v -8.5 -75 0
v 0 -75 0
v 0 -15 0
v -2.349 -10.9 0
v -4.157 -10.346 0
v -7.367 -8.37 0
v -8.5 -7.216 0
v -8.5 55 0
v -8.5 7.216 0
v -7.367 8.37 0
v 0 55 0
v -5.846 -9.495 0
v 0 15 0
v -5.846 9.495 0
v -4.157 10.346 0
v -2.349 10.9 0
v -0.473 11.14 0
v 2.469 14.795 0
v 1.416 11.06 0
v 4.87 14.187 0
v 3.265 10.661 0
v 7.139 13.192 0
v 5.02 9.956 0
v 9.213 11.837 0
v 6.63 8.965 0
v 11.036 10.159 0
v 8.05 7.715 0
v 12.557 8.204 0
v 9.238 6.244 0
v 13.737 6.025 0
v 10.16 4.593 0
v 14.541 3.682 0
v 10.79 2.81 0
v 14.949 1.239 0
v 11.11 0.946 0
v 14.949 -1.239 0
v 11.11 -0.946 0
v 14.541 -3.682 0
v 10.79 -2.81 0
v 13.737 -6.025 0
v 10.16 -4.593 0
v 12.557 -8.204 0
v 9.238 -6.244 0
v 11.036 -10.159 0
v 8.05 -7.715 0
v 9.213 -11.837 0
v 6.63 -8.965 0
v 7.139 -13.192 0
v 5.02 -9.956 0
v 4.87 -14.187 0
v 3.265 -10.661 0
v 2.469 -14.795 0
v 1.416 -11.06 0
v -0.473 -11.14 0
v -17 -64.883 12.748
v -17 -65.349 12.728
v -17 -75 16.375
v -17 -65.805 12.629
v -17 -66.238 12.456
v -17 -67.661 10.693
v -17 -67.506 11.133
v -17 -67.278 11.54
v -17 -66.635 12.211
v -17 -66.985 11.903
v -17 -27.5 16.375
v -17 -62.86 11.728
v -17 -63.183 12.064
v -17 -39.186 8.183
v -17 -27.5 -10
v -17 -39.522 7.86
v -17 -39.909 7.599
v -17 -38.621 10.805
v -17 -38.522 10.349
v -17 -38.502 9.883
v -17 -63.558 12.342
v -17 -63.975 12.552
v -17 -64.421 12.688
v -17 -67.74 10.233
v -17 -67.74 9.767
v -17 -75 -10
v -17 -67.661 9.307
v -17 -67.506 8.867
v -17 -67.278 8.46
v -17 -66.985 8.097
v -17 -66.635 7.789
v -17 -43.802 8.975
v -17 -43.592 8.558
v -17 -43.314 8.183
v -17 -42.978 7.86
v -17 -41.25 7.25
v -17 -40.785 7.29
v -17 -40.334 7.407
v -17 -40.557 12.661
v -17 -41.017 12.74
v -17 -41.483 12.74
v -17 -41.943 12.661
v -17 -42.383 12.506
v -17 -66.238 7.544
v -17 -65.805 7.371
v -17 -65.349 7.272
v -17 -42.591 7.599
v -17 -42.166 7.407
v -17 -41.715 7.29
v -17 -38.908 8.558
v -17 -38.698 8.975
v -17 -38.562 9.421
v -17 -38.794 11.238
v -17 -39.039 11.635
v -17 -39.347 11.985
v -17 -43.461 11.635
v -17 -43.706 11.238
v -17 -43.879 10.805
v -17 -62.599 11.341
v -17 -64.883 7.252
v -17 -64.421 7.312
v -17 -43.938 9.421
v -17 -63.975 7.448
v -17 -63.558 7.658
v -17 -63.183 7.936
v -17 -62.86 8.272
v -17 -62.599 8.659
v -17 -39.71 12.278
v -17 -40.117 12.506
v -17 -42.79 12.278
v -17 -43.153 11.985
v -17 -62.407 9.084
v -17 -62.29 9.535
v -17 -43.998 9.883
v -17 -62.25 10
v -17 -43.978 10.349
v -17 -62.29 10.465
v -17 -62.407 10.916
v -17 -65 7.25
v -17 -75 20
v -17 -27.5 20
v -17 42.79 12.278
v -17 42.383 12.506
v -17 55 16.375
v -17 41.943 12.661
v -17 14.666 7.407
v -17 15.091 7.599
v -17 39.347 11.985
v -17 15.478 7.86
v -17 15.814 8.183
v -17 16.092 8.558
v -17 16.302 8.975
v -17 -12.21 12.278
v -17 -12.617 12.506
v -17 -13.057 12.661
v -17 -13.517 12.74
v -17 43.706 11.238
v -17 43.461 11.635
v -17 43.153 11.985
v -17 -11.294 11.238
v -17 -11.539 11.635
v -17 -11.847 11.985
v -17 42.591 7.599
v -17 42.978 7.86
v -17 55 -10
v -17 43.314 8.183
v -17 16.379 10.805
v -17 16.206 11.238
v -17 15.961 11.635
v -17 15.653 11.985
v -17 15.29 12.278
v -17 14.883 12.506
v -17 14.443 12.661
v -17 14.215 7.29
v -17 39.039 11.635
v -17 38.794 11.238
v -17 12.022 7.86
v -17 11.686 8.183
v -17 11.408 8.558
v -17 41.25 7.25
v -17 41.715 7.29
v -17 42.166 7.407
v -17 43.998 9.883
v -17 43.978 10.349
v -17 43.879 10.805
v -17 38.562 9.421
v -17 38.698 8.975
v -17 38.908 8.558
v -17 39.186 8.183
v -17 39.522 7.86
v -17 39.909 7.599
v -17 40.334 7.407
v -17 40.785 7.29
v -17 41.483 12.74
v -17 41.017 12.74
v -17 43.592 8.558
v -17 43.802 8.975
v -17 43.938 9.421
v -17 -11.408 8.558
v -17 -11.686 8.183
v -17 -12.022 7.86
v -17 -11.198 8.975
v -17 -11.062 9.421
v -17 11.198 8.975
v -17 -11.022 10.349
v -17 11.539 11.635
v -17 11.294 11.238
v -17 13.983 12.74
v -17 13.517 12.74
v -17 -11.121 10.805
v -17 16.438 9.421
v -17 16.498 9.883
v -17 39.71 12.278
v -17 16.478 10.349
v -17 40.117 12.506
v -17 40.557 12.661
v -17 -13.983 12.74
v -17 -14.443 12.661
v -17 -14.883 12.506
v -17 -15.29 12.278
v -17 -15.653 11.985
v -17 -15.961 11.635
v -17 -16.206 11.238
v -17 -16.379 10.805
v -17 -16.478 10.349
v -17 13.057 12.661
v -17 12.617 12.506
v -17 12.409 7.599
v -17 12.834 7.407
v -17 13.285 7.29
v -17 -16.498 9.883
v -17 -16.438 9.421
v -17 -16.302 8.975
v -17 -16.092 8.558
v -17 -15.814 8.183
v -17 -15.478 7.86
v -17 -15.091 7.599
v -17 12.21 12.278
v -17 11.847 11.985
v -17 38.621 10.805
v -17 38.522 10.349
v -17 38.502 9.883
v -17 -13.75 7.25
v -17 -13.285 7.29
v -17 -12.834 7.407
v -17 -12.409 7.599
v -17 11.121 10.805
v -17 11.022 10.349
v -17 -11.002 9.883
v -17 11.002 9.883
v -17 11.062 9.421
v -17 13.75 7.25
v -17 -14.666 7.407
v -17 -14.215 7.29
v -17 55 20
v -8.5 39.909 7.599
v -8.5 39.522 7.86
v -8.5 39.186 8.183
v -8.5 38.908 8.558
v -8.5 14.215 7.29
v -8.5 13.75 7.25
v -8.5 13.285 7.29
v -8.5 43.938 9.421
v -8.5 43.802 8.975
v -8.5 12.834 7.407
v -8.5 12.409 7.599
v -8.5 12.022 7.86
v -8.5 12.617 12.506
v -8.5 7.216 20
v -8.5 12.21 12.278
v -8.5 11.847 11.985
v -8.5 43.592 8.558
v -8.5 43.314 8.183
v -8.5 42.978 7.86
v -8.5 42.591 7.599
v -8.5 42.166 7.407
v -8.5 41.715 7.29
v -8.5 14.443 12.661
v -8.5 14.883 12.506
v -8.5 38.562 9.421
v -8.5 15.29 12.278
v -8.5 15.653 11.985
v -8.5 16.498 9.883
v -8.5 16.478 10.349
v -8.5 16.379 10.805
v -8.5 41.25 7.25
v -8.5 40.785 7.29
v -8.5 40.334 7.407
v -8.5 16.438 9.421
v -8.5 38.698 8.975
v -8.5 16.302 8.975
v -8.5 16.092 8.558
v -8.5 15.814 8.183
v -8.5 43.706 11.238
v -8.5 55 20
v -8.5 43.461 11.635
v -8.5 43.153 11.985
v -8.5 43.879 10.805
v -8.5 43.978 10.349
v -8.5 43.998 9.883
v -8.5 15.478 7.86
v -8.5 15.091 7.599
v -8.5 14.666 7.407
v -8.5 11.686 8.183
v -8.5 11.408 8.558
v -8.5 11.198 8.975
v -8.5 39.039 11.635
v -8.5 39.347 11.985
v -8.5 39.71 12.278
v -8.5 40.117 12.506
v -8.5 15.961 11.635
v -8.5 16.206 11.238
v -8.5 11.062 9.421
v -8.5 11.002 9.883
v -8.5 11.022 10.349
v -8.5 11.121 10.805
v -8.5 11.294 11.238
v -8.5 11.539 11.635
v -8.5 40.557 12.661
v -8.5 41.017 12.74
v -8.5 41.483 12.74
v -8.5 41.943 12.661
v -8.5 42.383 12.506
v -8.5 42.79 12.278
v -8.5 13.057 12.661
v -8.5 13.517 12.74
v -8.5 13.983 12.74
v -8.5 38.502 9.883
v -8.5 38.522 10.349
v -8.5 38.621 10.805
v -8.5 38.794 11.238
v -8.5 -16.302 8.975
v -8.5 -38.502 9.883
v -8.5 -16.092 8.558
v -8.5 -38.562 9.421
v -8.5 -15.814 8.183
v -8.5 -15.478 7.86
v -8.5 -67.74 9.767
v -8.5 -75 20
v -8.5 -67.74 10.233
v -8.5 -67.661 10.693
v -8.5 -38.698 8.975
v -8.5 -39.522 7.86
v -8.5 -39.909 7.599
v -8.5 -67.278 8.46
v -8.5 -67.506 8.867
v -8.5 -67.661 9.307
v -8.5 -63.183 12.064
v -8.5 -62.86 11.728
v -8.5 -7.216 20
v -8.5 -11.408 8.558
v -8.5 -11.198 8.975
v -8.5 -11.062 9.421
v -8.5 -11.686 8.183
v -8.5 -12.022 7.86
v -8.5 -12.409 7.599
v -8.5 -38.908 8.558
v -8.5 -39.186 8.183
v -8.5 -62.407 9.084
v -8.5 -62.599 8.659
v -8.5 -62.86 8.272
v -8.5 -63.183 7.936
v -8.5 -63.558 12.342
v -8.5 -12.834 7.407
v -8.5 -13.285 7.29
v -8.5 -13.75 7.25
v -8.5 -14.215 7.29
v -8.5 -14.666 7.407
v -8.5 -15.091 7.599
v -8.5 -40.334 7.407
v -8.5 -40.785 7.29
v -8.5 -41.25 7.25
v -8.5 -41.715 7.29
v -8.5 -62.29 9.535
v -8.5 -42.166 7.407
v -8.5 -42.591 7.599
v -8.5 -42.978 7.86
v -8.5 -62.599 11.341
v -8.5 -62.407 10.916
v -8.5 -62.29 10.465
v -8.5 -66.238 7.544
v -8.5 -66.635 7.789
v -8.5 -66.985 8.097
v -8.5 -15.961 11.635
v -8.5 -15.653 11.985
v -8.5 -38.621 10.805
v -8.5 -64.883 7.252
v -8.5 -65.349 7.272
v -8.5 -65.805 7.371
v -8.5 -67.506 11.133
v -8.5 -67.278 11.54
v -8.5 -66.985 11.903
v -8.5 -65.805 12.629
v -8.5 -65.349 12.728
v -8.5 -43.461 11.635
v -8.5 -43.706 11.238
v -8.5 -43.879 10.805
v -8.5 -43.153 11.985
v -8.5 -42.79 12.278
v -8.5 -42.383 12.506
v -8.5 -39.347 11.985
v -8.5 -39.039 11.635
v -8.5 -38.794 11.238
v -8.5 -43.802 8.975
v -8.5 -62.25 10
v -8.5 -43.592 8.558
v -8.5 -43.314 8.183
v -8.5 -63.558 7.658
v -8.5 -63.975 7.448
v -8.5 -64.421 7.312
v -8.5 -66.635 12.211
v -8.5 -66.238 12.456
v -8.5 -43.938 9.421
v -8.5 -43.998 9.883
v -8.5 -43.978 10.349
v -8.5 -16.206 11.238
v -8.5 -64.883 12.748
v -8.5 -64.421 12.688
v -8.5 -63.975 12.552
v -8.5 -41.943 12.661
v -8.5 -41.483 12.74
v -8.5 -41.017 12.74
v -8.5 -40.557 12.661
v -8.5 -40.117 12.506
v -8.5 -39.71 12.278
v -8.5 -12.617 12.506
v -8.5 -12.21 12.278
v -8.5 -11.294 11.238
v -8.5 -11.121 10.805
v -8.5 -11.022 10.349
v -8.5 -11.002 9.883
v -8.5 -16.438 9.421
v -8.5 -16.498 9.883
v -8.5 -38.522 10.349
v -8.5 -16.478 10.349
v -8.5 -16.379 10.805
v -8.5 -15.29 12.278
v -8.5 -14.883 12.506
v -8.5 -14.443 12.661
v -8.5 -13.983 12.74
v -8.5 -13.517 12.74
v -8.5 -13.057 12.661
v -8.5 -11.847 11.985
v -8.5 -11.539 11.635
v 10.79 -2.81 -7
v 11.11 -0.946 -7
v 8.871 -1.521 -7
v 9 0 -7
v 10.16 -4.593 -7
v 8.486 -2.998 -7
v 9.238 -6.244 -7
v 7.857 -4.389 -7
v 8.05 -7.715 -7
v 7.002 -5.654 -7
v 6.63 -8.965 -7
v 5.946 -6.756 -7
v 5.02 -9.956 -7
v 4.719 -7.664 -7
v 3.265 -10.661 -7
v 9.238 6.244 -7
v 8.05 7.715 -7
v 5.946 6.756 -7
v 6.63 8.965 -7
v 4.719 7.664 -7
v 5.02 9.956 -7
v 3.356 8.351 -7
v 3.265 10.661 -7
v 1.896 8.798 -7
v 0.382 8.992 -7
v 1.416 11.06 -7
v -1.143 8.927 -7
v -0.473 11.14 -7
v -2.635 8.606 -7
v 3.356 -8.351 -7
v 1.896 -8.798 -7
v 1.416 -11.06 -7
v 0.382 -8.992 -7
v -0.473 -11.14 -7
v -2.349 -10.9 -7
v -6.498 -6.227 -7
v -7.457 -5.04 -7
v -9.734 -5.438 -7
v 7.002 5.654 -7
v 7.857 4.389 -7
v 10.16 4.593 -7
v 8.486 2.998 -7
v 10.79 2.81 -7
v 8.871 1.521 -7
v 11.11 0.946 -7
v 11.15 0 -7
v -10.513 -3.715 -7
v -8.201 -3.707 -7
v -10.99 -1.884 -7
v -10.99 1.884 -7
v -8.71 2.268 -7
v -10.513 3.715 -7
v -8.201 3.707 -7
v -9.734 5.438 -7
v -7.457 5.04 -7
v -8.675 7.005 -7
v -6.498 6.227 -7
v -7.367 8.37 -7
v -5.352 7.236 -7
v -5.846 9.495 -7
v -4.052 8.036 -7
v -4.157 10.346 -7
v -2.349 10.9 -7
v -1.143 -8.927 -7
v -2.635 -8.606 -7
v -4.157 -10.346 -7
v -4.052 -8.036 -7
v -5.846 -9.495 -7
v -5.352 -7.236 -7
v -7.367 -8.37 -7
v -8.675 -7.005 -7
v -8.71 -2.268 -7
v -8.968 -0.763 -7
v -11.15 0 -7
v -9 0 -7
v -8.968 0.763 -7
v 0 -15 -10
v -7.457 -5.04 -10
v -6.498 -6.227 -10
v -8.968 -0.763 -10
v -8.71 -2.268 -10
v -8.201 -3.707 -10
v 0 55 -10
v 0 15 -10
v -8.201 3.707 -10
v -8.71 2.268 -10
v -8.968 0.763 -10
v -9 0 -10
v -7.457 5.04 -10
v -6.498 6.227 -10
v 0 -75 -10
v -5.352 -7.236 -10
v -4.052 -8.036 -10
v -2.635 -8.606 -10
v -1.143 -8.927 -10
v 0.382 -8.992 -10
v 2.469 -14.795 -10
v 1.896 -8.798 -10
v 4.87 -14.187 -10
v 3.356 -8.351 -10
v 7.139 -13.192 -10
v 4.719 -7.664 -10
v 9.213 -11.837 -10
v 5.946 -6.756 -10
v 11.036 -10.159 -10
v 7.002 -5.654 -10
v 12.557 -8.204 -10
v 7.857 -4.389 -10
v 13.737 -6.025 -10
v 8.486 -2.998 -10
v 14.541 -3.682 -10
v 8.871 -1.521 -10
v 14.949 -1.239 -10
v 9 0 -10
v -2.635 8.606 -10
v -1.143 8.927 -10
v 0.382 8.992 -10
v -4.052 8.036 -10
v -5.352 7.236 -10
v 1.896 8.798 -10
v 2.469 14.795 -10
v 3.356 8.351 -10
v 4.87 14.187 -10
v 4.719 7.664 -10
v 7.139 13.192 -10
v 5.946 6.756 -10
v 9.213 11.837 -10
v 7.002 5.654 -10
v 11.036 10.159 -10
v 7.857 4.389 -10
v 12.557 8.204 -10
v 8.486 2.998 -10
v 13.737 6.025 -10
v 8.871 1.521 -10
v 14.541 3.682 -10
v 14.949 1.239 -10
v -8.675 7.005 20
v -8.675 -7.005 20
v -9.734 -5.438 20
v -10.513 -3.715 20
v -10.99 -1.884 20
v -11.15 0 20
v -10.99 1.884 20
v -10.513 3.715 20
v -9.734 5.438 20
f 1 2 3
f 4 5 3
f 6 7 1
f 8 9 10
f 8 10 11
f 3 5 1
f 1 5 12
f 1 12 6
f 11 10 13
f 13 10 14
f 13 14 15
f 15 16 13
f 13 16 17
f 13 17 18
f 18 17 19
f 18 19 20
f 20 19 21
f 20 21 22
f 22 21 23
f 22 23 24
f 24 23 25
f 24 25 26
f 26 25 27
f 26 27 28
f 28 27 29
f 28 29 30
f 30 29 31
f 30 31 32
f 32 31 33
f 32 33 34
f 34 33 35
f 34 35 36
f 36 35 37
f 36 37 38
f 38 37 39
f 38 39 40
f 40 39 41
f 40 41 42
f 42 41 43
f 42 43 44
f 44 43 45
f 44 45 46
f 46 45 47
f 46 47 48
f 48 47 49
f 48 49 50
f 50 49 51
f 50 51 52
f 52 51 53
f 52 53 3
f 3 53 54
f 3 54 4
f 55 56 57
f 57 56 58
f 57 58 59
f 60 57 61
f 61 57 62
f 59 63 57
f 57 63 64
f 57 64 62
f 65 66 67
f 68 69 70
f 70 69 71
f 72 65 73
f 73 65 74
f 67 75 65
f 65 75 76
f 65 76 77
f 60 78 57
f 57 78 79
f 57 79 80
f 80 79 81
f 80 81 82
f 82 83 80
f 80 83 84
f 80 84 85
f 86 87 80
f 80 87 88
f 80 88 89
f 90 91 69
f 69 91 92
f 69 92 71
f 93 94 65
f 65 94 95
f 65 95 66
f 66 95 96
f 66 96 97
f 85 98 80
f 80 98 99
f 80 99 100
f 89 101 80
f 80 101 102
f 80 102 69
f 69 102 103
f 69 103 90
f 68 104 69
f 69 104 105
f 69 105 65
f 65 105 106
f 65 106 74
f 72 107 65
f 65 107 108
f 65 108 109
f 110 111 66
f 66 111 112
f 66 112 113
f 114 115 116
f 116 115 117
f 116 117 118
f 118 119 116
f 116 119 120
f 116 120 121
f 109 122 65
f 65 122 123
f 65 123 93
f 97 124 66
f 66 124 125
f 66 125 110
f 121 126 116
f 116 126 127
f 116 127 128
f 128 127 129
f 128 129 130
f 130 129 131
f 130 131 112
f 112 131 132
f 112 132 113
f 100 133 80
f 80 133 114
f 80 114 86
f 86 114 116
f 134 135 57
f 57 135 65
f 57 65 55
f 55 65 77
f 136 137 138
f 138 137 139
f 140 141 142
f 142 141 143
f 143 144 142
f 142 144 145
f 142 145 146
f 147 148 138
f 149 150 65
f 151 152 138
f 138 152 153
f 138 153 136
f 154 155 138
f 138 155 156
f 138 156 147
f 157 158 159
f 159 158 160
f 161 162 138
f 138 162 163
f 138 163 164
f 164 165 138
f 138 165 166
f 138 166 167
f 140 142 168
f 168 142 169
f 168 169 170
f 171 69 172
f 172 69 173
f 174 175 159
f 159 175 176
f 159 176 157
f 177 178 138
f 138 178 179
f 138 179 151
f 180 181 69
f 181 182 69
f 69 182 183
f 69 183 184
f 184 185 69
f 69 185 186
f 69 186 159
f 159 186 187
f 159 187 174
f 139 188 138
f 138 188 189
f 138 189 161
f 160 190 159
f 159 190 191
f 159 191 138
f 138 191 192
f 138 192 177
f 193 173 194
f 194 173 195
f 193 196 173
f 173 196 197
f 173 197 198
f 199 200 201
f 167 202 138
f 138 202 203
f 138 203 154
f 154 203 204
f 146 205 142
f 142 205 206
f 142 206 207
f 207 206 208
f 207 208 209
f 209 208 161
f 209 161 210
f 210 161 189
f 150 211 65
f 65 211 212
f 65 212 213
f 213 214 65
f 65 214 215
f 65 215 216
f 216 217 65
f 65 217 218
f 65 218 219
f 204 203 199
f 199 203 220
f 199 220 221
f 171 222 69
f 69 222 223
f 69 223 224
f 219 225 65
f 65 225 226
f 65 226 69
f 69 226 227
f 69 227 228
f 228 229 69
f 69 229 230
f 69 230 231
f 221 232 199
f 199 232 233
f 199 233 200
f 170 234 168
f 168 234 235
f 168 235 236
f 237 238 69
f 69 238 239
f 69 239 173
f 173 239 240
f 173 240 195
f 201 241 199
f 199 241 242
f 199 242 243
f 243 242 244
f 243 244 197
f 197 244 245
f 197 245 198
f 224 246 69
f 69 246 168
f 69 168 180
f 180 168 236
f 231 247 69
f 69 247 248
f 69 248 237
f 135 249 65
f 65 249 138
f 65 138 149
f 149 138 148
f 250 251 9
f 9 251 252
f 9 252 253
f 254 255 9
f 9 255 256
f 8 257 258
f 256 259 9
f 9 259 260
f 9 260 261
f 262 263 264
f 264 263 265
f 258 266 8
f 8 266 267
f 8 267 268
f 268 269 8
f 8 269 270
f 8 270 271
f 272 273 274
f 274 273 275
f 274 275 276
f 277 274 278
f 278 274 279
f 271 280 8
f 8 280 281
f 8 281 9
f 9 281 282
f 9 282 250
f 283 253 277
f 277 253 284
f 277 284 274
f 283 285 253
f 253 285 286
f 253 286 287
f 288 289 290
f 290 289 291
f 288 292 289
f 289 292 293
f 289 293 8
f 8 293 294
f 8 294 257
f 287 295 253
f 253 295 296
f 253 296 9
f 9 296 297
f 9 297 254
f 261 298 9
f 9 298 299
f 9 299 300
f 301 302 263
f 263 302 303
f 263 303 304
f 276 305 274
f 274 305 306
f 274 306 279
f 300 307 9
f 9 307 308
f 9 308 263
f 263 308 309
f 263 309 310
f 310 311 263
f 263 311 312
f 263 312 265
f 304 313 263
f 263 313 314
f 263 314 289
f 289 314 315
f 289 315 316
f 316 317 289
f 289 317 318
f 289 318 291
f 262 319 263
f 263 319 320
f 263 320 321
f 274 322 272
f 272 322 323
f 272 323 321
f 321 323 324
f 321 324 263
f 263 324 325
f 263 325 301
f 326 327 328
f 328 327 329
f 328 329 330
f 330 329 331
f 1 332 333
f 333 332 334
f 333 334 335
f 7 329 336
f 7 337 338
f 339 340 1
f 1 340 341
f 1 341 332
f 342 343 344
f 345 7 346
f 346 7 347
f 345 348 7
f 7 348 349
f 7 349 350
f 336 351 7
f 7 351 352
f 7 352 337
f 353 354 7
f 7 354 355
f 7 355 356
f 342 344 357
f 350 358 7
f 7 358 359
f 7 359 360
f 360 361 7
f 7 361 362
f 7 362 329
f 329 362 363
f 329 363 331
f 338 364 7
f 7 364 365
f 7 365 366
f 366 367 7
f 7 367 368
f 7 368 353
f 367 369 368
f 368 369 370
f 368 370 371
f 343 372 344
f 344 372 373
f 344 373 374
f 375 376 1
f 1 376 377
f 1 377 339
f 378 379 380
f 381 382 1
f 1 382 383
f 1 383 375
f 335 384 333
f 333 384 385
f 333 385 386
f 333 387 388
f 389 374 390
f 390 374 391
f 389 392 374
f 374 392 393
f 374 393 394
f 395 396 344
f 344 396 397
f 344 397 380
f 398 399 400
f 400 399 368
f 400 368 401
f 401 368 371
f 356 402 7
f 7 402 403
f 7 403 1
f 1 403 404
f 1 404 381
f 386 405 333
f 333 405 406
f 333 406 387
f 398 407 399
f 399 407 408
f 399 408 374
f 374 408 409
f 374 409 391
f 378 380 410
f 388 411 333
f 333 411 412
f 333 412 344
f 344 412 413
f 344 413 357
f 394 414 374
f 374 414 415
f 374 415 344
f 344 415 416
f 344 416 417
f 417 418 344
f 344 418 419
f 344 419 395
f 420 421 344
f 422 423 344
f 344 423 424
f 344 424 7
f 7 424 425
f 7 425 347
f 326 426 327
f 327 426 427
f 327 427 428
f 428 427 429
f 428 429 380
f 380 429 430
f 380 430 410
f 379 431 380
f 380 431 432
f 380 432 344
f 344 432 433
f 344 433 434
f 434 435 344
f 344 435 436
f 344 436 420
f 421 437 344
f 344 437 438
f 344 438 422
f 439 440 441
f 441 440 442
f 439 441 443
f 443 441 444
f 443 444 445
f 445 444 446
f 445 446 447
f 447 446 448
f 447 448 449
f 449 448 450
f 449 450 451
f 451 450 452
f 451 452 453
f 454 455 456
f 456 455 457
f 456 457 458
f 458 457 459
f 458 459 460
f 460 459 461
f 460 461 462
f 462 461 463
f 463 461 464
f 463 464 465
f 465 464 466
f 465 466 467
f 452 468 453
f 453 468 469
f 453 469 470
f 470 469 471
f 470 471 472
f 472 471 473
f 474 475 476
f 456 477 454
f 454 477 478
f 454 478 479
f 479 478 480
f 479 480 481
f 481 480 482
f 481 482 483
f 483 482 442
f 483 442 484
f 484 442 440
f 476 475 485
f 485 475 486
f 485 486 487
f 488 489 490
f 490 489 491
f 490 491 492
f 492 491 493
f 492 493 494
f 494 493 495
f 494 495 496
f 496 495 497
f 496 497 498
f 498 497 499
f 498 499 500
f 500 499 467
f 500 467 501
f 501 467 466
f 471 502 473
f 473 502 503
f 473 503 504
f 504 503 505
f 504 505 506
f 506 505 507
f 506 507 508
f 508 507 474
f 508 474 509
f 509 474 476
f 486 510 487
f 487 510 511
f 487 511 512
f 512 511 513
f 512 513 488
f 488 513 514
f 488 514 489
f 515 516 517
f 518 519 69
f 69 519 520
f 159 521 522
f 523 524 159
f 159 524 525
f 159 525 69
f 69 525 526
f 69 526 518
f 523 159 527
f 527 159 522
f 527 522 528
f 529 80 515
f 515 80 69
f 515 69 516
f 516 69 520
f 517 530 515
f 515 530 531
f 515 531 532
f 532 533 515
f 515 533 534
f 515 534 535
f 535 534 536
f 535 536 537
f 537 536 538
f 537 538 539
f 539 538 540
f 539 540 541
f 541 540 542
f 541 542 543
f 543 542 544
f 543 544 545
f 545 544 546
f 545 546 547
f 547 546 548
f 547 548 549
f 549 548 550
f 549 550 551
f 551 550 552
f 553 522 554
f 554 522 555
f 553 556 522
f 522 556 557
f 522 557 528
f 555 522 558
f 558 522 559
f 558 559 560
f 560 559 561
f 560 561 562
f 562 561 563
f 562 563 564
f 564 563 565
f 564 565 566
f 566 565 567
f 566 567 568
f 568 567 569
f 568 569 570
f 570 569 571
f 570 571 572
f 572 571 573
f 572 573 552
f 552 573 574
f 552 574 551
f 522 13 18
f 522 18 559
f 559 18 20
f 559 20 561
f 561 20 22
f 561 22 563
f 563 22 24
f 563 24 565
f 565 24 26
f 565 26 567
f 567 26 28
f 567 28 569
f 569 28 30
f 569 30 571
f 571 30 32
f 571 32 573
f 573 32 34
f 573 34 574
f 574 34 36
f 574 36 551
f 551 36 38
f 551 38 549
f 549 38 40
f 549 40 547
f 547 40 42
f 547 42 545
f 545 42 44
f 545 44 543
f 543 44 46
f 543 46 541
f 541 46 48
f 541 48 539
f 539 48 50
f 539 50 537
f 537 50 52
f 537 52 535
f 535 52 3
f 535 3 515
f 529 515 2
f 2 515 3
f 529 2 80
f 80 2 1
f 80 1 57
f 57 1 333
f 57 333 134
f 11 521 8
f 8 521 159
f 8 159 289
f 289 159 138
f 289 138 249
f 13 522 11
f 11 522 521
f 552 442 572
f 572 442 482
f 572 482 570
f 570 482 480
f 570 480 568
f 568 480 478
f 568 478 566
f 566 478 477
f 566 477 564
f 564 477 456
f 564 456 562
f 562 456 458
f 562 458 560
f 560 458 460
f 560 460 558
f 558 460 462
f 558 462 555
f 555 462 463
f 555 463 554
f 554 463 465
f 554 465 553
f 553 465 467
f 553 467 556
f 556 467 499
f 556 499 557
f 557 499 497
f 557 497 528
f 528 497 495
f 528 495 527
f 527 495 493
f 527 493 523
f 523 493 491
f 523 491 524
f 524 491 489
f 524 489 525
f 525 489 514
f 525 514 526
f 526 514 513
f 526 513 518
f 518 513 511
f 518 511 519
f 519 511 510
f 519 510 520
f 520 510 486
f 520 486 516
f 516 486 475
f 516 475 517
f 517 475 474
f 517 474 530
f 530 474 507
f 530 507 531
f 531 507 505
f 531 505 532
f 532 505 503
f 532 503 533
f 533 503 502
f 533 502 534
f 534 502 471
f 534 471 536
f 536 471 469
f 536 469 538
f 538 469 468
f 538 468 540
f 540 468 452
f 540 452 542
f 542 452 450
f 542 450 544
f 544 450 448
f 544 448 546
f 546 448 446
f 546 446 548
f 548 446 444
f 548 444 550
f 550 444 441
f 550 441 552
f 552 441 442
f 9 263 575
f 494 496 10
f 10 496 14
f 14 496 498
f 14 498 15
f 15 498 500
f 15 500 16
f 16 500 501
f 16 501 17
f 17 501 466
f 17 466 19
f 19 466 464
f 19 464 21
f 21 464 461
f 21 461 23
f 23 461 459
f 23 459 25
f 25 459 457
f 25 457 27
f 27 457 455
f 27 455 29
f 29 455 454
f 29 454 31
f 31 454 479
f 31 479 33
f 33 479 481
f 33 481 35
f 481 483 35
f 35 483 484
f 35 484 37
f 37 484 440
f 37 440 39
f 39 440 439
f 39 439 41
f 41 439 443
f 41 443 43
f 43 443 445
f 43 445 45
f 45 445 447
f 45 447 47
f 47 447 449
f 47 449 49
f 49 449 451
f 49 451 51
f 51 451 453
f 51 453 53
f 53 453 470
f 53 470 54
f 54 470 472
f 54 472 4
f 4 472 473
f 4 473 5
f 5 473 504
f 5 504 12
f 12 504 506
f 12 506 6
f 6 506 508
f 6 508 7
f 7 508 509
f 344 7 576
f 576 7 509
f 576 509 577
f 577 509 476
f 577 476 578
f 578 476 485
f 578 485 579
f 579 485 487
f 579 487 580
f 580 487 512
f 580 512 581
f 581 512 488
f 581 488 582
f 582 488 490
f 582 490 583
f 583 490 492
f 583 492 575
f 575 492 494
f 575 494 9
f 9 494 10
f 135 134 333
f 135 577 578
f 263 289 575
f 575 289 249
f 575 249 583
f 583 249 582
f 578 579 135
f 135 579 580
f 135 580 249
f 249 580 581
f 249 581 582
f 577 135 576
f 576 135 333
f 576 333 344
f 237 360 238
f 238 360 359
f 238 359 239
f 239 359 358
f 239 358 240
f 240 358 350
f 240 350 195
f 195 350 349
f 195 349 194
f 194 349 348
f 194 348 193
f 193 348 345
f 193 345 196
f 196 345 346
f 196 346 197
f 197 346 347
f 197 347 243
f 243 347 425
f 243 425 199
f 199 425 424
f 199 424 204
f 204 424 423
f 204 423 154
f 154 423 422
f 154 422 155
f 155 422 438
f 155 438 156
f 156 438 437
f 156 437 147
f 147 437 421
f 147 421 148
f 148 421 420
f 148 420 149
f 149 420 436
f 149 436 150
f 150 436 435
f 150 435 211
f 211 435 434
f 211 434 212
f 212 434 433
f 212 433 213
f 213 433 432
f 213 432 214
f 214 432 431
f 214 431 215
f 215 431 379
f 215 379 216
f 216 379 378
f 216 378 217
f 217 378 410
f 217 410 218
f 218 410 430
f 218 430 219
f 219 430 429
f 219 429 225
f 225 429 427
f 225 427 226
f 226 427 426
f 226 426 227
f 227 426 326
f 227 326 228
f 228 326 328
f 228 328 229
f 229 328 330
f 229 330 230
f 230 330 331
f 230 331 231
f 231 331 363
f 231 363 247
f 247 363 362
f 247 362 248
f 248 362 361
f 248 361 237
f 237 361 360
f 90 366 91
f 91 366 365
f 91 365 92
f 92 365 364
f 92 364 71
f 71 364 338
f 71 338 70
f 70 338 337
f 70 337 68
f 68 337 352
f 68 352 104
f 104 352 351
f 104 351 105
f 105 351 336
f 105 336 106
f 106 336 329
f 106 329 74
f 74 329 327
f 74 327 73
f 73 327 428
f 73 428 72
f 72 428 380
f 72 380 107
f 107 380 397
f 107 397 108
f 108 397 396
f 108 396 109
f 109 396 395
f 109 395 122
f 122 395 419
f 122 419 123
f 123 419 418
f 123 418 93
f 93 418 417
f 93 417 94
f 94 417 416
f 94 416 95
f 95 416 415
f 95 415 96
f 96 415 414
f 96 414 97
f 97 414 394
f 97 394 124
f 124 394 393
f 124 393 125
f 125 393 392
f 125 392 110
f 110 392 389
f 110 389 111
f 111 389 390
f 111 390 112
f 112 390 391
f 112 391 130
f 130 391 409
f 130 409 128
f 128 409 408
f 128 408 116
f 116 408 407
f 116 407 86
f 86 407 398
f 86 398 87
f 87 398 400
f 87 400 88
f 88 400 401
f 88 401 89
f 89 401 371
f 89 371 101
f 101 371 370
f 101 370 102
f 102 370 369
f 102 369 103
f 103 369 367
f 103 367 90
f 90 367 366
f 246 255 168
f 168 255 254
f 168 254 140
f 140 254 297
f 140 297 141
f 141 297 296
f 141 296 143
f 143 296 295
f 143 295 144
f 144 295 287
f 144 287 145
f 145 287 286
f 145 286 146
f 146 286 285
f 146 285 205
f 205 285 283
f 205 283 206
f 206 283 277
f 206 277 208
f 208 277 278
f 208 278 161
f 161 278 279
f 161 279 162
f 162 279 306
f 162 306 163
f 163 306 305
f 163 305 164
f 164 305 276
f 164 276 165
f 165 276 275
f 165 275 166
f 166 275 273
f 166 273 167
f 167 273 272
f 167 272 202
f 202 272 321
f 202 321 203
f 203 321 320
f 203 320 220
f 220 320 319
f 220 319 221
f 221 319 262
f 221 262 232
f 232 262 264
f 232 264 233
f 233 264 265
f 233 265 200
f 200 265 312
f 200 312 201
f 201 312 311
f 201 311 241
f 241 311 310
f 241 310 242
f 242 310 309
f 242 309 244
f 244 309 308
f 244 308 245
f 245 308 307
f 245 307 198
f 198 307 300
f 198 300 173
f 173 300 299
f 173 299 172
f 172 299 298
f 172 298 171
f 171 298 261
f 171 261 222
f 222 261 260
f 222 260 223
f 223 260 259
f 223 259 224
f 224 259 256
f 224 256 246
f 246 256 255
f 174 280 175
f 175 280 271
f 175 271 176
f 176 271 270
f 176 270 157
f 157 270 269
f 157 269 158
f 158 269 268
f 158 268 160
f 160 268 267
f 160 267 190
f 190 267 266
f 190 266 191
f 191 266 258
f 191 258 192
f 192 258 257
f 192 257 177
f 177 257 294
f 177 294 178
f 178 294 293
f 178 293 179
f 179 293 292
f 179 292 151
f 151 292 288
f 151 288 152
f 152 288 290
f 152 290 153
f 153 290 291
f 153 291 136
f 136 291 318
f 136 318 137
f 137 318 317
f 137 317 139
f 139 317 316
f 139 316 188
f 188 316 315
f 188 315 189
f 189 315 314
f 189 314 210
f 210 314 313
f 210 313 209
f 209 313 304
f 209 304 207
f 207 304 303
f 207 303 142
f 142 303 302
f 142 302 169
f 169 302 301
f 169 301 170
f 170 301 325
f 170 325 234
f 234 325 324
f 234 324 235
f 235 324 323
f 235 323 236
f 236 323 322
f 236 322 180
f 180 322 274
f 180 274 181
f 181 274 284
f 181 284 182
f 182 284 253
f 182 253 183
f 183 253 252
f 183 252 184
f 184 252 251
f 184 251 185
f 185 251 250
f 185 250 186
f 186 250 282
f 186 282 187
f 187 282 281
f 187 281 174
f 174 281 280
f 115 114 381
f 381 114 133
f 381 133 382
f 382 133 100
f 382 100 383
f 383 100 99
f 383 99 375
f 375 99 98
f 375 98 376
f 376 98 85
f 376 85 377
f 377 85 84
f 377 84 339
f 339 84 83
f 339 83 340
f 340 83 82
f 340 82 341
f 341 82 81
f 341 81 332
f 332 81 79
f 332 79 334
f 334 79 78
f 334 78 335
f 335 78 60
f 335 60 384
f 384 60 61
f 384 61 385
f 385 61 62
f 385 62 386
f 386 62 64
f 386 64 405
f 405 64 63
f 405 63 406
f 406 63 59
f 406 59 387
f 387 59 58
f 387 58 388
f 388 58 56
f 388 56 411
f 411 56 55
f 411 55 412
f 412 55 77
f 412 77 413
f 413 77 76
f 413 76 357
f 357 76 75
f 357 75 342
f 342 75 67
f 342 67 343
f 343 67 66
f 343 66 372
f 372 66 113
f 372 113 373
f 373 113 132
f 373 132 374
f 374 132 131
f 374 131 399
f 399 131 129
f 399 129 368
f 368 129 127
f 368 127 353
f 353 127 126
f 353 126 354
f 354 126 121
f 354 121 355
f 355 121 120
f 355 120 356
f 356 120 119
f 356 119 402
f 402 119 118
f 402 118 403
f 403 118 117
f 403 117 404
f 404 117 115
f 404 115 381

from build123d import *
from build123d.topology import SkipClean

# Parameters (mm, degrees)
SKETCH4_R           = 9
BOSS_EXTRUDE1_DEPTH = 3
BOSS_EXTRUDE3_START = 7
SKETCH5_R           = 11.15
BOSS_EXTRUDE3_DEPTH = 7
BOSS_EXTRUDE4_START = 10
BOSS_EXTRUDE4_DEPTH = 10
BOSS_EXTRUDE5_START = 10
BOSS_EXTRUDE5_DEPTH = 10
SKETCH8_R           = 2.75
CUT_EXTRUDE2_DEPTH  = 10
SKETCH10_W          = 17
SKETCH10_H          = 20
BOSS_EXTRUDE7_DEPTH = 7
SKETCH11_W          = 8.5
SKETCH11_H          = 20
BOSS_EXTRUDE8_DEPTH = 20
SKETCH12_R          = 2.75
CUT_EXTRUDE3_DEPTH  = 20


with BuildPart() as part:
    # Sketch4 → Boss-Extrude1 (new body)
    with BuildSketch(Plane(origin=(0, 0, -7), x_dir=(-1, 0, 0), z_dir=(0, 0, -1))):
        with BuildLine():
            Line((0, 55), (0, 15))
            ThreePointArc((0, 15), (-15, 0), (0, -15))
            Line((0, -15), (0, -75))
            Line((0, -75), (17, -75))
            Line((17, -75), (17, 55))
            Line((17, 55), (0, 55))
        make_face()
        Circle(SKETCH4_R, mode=Mode.SUBTRACT)
    extrude(amount=BOSS_EXTRUDE1_DEPTH)

    # Sketch5 → Boss-Extrude3 (add)
    with BuildSketch(Plane.XY.offset(-7).offset(BOSS_EXTRUDE3_START)):
        with BuildLine():
            Line((0, -55), (0, -15))
            ThreePointArc((0, -15), (15, 0), (0, 15))
            Line((0, 15), (0, 55))
            Line((0, 55), (-17, 55))
            Line((-17, 55), (-17, -55))
            Line((-17, -55), (0, -55))
        make_face()
        Circle(SKETCH5_R, mode=Mode.SUBTRACT)
    extrude(amount=-BOSS_EXTRUDE3_DEPTH)

    # Sketch6 → Boss-Extrude4 (add)
    with SkipClean():  # the faces are left unmerged after this step: merging them gives an invalid solid
        with BuildSketch(Plane.XY.offset(BOSS_EXTRUDE4_START)):
            with BuildLine():
                Line((-8.5, 7.21612777), (-8.5, 15))
                Line((-8.5, 15), (-8.5, 55))
                Line((-8.5, 55), (-17, 55))
                Line((-17, 55), (-17, -55))
                Line((-17, -55), (-8.5, -55))
                Line((-8.5, -55), (-8.5, -16.073942755))
                Line((-8.5, -16.073942755), (-8.5, -15))
                Line((-8.5, -15), (-8.5, -7.21612777))
                ThreePointArc((-8.5, -7.21612777), (-11.15, 0), (-8.5, 7.21612777))
            make_face()
        extrude(amount=-BOSS_EXTRUDE4_DEPTH)

    # Sketch7 → Boss-Extrude5 (add)
    with SkipClean():  # the faces are left unmerged after this step: merging them gives an invalid solid
        with BuildSketch(Plane.XY.offset(10).offset(BOSS_EXTRUDE5_START)):
            with BuildLine():
                Line((-8.5, 7.21612777), (-8.5, 55))
                Line((-8.5, 55), (-17, 55))
                Line((-17, 55), (-17, -55))
                Line((-17, -55), (-8.5, -55))
                Line((-8.5, -55), (-8.5, -7.21612777))
                ThreePointArc((-8.5, -7.21612777), (-11.15, 0), (-8.5, 7.21612777))
            make_face()
        extrude(amount=-BOSS_EXTRUDE5_DEPTH)

    # Sketch8 → Cut-Extrude2 (cut)
    with SkipClean():  # the faces are left unmerged after this step: merging them gives an invalid solid
        with BuildSketch(Plane(origin=(-8.5, 0, 0), x_dir=(0, 0, -1), z_dir=(1, 0, 0))):
            with BuildLine():
                ThreePointArc((-7.25, 41.25), (-8.055456352, 43.194543648), (-10, 44))
                Line((-10, 44), (-10, 38.5))
                ThreePointArc((-10, 38.5), (-8.055456352, 39.305456352), (-7.25, 41.25))
            make_face()
            with BuildLine():
                Line((-10, 38.5), (-10, 44))
                ThreePointArc((-10, 44), (-12.75, 41.25), (-10, 38.5))
            make_face()
            with Locations((-10, 13.75)):
                Circle(SKETCH8_R)
            with Locations((-10, -13.75)):
                Circle(SKETCH8_R)
            with Locations((-10, -41.25)):
                Circle(SKETCH8_R)
        extrude(amount=-CUT_EXTRUDE2_DEPTH, mode=Mode.SUBTRACT)

    # Sketch10 → Boss-Extrude7 (add)
    with SkipClean():  # the faces are left unmerged after this step: merging them gives an invalid solid
        with BuildSketch(Plane.XY.offset(-7)):
            with Locations((-8.5, -65)):
                Rectangle(SKETCH10_W, SKETCH10_H)
        extrude(amount=BOSS_EXTRUDE7_DEPTH)

    # Sketch11 → Boss-Extrude8 (add)
    with SkipClean():  # the faces are left unmerged after this step: merging them gives an invalid solid
        with BuildSketch(Plane.XZ.offset(55)):
            with Locations((-12.75, 10)):
                Rectangle(SKETCH11_W, SKETCH11_H)
        extrude(amount=BOSS_EXTRUDE8_DEPTH)

    # Sketch12 → Cut-Extrude3 (cut)
    with SkipClean():  # the faces are left unmerged after this step: merging them gives an invalid solid
        with BuildSketch(Plane(origin=(-8.5, 0, 0), x_dir=(0, 0, -1), z_dir=(1, 0, 0))):
            with Locations(Location((-10, -65, 0), (0, 0, 90))):
                Circle(SKETCH12_R)
        extrude(amount=-CUT_EXTRUDE3_DEPTH, mode=Mode.SUBTRACT)


solid = part.part
